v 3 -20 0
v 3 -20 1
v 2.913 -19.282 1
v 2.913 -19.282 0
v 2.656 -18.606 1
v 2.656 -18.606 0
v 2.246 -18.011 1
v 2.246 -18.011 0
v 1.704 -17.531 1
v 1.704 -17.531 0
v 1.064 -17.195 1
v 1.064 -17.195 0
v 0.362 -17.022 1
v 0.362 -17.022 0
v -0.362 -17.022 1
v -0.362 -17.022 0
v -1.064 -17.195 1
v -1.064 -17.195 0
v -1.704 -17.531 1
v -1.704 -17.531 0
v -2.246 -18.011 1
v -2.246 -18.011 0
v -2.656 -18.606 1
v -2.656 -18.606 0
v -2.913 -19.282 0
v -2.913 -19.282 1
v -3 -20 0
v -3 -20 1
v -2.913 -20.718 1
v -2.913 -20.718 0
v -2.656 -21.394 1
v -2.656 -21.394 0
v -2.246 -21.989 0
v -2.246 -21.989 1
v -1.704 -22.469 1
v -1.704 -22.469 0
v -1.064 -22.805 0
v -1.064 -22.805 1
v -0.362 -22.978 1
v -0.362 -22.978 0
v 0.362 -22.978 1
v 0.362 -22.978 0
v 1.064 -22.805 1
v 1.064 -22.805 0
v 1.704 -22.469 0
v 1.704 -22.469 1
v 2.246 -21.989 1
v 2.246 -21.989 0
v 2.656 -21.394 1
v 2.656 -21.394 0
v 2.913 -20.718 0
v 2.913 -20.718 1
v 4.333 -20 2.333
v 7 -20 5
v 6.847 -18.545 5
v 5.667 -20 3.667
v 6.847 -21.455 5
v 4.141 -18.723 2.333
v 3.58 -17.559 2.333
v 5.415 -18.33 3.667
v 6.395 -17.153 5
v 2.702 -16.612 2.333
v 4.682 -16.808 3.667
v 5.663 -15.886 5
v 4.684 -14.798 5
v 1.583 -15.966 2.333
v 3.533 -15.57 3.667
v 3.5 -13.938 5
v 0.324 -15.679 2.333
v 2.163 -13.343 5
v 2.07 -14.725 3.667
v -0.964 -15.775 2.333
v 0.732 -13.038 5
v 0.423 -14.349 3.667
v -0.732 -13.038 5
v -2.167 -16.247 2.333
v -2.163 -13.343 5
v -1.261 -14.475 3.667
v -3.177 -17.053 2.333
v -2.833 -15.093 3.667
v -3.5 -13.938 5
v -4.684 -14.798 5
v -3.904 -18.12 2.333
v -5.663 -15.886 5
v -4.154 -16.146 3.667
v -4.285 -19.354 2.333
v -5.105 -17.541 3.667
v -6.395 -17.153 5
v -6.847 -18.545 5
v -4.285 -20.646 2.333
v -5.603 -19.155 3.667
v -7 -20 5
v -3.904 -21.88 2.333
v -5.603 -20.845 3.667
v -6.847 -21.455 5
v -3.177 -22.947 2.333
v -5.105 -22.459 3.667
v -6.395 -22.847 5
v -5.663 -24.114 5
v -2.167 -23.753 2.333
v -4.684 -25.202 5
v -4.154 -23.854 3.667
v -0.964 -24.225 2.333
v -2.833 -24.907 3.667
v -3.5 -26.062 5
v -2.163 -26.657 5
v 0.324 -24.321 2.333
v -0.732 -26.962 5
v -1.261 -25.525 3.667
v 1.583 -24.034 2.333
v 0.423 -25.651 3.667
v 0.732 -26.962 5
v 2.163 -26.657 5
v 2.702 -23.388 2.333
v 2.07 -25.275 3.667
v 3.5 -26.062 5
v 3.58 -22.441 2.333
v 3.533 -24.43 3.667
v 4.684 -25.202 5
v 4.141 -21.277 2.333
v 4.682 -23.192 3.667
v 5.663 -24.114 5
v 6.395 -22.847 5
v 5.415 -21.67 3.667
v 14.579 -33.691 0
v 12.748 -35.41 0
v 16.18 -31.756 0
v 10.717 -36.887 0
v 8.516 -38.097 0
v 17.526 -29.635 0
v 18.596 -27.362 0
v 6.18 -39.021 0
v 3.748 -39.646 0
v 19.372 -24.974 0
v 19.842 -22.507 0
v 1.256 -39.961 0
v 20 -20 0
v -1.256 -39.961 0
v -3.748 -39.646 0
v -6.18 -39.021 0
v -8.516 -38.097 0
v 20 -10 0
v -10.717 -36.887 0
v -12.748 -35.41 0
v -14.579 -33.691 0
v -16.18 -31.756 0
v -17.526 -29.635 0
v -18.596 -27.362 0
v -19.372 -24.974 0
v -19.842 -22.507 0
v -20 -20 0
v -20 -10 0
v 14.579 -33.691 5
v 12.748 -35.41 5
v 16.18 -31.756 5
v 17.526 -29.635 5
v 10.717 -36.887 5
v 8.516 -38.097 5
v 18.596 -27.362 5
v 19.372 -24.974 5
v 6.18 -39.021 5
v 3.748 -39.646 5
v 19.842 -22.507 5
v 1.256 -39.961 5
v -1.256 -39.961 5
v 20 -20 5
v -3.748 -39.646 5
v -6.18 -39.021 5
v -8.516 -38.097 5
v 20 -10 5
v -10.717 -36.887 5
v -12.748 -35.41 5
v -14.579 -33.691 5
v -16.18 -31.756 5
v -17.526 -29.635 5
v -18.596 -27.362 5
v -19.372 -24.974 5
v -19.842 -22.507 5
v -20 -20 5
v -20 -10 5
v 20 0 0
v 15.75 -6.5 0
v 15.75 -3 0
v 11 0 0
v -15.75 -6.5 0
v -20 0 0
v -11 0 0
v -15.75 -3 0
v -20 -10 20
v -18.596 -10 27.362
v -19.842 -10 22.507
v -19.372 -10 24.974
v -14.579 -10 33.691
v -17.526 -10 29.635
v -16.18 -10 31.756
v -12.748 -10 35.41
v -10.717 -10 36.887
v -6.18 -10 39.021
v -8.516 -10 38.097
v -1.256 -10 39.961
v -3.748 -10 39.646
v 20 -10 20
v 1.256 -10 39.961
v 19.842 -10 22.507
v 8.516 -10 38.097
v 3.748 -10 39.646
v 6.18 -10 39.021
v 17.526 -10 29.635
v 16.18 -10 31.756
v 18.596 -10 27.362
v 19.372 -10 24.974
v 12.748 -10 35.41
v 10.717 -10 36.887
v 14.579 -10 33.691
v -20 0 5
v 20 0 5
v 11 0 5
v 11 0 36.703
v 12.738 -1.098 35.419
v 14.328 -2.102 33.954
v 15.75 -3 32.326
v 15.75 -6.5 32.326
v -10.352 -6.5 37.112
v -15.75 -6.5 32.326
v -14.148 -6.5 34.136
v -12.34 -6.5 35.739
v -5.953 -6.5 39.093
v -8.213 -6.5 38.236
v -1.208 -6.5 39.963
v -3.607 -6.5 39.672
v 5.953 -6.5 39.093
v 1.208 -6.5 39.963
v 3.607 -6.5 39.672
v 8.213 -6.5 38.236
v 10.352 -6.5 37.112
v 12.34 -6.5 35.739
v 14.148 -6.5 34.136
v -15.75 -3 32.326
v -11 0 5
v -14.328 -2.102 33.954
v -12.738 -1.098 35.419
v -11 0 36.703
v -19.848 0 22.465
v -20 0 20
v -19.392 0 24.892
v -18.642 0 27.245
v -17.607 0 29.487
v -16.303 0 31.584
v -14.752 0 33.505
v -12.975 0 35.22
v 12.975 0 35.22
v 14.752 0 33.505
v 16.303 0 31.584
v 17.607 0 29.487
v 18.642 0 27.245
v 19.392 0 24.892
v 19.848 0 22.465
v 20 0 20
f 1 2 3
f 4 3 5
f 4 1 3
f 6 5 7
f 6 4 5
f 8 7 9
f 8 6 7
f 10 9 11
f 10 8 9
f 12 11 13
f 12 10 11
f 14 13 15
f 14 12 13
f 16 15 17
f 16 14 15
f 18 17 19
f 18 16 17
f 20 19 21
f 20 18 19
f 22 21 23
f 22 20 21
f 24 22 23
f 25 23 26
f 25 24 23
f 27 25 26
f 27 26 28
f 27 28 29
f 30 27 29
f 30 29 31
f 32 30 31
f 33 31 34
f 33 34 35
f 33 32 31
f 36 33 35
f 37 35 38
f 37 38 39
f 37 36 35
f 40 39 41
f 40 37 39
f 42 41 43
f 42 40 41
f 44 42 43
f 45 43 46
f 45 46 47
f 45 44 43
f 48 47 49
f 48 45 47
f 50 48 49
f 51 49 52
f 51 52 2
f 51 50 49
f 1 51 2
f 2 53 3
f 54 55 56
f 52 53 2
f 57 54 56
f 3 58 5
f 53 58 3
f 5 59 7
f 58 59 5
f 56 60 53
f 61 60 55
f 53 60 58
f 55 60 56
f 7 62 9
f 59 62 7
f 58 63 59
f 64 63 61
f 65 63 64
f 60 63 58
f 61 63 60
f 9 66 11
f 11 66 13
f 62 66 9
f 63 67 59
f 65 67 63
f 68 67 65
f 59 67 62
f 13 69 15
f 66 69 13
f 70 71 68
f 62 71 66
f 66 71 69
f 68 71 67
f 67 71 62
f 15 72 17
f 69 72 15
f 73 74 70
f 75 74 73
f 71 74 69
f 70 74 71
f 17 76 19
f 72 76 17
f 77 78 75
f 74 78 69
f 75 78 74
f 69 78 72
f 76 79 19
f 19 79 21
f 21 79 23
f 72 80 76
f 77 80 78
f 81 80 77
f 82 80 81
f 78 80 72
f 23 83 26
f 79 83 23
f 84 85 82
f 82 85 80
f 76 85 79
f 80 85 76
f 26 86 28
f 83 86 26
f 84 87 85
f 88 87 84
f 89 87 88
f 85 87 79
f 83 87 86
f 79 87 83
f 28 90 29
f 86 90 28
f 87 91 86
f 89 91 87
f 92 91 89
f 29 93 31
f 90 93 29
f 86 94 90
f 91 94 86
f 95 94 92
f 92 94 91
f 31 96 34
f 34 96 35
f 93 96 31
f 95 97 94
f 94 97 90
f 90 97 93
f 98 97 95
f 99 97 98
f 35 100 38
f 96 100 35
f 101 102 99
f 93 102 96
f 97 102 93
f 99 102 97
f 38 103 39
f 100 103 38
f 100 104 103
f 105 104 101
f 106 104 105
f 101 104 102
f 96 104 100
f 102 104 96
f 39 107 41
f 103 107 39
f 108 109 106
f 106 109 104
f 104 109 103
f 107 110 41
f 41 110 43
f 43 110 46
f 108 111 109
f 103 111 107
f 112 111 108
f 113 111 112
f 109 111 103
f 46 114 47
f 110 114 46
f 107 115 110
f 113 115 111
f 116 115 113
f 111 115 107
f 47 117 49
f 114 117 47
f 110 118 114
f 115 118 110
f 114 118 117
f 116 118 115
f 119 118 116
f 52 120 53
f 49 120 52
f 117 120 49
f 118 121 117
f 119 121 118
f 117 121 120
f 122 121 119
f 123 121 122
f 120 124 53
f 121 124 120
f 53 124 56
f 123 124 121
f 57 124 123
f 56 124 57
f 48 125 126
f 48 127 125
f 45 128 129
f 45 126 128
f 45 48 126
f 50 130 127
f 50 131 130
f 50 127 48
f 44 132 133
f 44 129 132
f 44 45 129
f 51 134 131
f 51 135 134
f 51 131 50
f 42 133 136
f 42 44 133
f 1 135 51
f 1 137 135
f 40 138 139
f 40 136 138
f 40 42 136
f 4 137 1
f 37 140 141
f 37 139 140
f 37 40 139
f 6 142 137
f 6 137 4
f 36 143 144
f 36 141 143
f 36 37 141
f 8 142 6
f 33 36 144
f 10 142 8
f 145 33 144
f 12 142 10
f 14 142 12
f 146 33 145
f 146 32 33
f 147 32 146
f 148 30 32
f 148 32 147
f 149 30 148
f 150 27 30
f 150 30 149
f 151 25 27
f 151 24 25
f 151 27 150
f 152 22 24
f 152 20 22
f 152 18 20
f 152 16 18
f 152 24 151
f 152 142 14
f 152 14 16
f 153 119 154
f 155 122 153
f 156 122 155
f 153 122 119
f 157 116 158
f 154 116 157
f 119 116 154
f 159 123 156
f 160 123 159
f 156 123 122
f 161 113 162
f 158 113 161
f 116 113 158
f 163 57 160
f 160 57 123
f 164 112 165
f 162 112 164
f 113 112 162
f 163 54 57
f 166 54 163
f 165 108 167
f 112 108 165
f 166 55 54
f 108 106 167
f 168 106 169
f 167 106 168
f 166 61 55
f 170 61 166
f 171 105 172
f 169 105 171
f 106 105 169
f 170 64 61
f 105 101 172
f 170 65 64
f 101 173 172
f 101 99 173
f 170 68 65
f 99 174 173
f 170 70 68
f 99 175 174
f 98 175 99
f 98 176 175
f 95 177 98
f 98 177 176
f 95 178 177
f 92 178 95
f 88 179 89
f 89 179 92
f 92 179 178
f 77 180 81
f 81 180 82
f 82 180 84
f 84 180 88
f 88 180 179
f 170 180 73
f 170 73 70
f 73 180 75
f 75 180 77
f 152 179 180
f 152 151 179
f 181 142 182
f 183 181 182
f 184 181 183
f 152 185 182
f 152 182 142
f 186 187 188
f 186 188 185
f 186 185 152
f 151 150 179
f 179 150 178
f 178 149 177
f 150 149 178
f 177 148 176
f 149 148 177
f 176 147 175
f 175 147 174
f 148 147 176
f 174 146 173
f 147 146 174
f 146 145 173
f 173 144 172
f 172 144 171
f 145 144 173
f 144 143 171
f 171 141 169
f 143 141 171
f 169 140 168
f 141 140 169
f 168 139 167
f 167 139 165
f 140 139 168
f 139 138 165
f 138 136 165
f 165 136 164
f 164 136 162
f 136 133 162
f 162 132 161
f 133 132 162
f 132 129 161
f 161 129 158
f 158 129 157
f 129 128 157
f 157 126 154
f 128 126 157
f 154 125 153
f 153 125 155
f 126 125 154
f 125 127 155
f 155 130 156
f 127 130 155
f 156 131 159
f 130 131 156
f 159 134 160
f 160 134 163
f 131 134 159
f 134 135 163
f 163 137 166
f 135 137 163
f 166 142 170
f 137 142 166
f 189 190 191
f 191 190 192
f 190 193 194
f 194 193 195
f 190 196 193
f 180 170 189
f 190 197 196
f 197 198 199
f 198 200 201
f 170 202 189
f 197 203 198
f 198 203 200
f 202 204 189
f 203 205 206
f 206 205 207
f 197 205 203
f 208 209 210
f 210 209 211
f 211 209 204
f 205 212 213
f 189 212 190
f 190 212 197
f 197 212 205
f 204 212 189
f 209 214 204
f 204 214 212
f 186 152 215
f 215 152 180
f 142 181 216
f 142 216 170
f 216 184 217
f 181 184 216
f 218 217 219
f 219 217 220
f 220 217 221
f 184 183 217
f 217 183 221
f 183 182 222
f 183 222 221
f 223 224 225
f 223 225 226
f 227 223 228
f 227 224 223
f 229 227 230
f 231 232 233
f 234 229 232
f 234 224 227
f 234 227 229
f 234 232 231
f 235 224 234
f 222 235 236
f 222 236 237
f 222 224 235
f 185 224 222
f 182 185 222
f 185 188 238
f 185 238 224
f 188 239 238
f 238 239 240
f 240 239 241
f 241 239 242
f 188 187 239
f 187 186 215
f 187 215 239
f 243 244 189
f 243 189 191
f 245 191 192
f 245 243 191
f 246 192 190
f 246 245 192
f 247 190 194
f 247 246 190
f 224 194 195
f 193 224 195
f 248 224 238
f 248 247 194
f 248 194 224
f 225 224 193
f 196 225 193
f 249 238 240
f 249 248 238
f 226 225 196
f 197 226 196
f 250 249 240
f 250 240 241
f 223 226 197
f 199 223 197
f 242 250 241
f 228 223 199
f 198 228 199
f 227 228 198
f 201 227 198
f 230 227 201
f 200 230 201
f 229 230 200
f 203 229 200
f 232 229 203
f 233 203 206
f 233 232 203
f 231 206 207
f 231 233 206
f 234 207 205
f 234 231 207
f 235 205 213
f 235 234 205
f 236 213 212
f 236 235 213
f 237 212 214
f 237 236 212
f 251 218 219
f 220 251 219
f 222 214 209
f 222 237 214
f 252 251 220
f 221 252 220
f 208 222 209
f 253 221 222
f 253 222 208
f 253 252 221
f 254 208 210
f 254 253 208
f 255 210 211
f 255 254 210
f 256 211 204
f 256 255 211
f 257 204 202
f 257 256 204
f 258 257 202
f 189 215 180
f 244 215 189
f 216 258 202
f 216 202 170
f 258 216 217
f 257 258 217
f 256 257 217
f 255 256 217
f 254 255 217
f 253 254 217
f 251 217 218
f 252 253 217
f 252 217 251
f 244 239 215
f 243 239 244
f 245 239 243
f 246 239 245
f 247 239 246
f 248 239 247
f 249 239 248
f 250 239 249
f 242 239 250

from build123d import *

# Parameters (mm, degrees)
PAD_DEPTH    = 5
PAD001_DEPTH = 10
POCKET_DEPTH = 42
SKETCH003_R  = 3
HOLE_DEPTH   = 25
CHAMFER_SIZE = 4


with BuildPart() as part:
    # Sketch → Pad (new body)
    with BuildSketch(Plane.XY):
        with BuildLine():
            Line((-20, 0), (20, 0))
            Line((20, 0), (20, -20))
            ThreePointArc((-20, -20), (0, -40), (20, -20))
            Line((-20, 0), (-20, -20))
        make_face()
    extrude(amount=PAD_DEPTH)

    # Sketch001 (on Face1 of Pad) → Pad001 (join)
    with BuildSketch(Plane(origin=(0, 0, 0), x_dir=(-1, 0, 0), z_dir=(0, 1, 0))):
        with BuildLine():
            Line((-20, 20), (-20, 0))
            Line((-20, 0), (20, 0))
            Line((20, 0), (20, 20))
            ThreePointArc((20, 20), (0, 40), (-20, 20))
        make_face()
    extrude(amount=-PAD001_DEPTH)

    # Sketch002 (on Face4 of Pad001) → Pocket (cut)
    with BuildSketch(Plane(origin=(0, 0, 0), x_dir=(1, 0, 0), z_dir=(0, 0, -1))):
        Polygon((-15.75, 3), (-15.75, 6.5), (15.75, 6.5), (15.75, 3), (11, 0), (-11, 0), align=None)
    extrude(amount=-POCKET_DEPTH, mode=Mode.SUBTRACT)

    # Sketch003 → Hole (cut)
    with BuildSketch(Plane.XY.offset(5)):
        with Locations((0, -20)):
            Circle(SKETCH003_R)
    extrude(amount=-HOLE_DEPTH, mode=Mode.SUBTRACT)

    # Chamfer
    chamfer_edges = [part.edges().sort_by_distance(p)[0] for p in [
        (-3, -20, 5),
    ]]
    chamfer(chamfer_edges, length=CHAMFER_SIZE)


solid = part.part
